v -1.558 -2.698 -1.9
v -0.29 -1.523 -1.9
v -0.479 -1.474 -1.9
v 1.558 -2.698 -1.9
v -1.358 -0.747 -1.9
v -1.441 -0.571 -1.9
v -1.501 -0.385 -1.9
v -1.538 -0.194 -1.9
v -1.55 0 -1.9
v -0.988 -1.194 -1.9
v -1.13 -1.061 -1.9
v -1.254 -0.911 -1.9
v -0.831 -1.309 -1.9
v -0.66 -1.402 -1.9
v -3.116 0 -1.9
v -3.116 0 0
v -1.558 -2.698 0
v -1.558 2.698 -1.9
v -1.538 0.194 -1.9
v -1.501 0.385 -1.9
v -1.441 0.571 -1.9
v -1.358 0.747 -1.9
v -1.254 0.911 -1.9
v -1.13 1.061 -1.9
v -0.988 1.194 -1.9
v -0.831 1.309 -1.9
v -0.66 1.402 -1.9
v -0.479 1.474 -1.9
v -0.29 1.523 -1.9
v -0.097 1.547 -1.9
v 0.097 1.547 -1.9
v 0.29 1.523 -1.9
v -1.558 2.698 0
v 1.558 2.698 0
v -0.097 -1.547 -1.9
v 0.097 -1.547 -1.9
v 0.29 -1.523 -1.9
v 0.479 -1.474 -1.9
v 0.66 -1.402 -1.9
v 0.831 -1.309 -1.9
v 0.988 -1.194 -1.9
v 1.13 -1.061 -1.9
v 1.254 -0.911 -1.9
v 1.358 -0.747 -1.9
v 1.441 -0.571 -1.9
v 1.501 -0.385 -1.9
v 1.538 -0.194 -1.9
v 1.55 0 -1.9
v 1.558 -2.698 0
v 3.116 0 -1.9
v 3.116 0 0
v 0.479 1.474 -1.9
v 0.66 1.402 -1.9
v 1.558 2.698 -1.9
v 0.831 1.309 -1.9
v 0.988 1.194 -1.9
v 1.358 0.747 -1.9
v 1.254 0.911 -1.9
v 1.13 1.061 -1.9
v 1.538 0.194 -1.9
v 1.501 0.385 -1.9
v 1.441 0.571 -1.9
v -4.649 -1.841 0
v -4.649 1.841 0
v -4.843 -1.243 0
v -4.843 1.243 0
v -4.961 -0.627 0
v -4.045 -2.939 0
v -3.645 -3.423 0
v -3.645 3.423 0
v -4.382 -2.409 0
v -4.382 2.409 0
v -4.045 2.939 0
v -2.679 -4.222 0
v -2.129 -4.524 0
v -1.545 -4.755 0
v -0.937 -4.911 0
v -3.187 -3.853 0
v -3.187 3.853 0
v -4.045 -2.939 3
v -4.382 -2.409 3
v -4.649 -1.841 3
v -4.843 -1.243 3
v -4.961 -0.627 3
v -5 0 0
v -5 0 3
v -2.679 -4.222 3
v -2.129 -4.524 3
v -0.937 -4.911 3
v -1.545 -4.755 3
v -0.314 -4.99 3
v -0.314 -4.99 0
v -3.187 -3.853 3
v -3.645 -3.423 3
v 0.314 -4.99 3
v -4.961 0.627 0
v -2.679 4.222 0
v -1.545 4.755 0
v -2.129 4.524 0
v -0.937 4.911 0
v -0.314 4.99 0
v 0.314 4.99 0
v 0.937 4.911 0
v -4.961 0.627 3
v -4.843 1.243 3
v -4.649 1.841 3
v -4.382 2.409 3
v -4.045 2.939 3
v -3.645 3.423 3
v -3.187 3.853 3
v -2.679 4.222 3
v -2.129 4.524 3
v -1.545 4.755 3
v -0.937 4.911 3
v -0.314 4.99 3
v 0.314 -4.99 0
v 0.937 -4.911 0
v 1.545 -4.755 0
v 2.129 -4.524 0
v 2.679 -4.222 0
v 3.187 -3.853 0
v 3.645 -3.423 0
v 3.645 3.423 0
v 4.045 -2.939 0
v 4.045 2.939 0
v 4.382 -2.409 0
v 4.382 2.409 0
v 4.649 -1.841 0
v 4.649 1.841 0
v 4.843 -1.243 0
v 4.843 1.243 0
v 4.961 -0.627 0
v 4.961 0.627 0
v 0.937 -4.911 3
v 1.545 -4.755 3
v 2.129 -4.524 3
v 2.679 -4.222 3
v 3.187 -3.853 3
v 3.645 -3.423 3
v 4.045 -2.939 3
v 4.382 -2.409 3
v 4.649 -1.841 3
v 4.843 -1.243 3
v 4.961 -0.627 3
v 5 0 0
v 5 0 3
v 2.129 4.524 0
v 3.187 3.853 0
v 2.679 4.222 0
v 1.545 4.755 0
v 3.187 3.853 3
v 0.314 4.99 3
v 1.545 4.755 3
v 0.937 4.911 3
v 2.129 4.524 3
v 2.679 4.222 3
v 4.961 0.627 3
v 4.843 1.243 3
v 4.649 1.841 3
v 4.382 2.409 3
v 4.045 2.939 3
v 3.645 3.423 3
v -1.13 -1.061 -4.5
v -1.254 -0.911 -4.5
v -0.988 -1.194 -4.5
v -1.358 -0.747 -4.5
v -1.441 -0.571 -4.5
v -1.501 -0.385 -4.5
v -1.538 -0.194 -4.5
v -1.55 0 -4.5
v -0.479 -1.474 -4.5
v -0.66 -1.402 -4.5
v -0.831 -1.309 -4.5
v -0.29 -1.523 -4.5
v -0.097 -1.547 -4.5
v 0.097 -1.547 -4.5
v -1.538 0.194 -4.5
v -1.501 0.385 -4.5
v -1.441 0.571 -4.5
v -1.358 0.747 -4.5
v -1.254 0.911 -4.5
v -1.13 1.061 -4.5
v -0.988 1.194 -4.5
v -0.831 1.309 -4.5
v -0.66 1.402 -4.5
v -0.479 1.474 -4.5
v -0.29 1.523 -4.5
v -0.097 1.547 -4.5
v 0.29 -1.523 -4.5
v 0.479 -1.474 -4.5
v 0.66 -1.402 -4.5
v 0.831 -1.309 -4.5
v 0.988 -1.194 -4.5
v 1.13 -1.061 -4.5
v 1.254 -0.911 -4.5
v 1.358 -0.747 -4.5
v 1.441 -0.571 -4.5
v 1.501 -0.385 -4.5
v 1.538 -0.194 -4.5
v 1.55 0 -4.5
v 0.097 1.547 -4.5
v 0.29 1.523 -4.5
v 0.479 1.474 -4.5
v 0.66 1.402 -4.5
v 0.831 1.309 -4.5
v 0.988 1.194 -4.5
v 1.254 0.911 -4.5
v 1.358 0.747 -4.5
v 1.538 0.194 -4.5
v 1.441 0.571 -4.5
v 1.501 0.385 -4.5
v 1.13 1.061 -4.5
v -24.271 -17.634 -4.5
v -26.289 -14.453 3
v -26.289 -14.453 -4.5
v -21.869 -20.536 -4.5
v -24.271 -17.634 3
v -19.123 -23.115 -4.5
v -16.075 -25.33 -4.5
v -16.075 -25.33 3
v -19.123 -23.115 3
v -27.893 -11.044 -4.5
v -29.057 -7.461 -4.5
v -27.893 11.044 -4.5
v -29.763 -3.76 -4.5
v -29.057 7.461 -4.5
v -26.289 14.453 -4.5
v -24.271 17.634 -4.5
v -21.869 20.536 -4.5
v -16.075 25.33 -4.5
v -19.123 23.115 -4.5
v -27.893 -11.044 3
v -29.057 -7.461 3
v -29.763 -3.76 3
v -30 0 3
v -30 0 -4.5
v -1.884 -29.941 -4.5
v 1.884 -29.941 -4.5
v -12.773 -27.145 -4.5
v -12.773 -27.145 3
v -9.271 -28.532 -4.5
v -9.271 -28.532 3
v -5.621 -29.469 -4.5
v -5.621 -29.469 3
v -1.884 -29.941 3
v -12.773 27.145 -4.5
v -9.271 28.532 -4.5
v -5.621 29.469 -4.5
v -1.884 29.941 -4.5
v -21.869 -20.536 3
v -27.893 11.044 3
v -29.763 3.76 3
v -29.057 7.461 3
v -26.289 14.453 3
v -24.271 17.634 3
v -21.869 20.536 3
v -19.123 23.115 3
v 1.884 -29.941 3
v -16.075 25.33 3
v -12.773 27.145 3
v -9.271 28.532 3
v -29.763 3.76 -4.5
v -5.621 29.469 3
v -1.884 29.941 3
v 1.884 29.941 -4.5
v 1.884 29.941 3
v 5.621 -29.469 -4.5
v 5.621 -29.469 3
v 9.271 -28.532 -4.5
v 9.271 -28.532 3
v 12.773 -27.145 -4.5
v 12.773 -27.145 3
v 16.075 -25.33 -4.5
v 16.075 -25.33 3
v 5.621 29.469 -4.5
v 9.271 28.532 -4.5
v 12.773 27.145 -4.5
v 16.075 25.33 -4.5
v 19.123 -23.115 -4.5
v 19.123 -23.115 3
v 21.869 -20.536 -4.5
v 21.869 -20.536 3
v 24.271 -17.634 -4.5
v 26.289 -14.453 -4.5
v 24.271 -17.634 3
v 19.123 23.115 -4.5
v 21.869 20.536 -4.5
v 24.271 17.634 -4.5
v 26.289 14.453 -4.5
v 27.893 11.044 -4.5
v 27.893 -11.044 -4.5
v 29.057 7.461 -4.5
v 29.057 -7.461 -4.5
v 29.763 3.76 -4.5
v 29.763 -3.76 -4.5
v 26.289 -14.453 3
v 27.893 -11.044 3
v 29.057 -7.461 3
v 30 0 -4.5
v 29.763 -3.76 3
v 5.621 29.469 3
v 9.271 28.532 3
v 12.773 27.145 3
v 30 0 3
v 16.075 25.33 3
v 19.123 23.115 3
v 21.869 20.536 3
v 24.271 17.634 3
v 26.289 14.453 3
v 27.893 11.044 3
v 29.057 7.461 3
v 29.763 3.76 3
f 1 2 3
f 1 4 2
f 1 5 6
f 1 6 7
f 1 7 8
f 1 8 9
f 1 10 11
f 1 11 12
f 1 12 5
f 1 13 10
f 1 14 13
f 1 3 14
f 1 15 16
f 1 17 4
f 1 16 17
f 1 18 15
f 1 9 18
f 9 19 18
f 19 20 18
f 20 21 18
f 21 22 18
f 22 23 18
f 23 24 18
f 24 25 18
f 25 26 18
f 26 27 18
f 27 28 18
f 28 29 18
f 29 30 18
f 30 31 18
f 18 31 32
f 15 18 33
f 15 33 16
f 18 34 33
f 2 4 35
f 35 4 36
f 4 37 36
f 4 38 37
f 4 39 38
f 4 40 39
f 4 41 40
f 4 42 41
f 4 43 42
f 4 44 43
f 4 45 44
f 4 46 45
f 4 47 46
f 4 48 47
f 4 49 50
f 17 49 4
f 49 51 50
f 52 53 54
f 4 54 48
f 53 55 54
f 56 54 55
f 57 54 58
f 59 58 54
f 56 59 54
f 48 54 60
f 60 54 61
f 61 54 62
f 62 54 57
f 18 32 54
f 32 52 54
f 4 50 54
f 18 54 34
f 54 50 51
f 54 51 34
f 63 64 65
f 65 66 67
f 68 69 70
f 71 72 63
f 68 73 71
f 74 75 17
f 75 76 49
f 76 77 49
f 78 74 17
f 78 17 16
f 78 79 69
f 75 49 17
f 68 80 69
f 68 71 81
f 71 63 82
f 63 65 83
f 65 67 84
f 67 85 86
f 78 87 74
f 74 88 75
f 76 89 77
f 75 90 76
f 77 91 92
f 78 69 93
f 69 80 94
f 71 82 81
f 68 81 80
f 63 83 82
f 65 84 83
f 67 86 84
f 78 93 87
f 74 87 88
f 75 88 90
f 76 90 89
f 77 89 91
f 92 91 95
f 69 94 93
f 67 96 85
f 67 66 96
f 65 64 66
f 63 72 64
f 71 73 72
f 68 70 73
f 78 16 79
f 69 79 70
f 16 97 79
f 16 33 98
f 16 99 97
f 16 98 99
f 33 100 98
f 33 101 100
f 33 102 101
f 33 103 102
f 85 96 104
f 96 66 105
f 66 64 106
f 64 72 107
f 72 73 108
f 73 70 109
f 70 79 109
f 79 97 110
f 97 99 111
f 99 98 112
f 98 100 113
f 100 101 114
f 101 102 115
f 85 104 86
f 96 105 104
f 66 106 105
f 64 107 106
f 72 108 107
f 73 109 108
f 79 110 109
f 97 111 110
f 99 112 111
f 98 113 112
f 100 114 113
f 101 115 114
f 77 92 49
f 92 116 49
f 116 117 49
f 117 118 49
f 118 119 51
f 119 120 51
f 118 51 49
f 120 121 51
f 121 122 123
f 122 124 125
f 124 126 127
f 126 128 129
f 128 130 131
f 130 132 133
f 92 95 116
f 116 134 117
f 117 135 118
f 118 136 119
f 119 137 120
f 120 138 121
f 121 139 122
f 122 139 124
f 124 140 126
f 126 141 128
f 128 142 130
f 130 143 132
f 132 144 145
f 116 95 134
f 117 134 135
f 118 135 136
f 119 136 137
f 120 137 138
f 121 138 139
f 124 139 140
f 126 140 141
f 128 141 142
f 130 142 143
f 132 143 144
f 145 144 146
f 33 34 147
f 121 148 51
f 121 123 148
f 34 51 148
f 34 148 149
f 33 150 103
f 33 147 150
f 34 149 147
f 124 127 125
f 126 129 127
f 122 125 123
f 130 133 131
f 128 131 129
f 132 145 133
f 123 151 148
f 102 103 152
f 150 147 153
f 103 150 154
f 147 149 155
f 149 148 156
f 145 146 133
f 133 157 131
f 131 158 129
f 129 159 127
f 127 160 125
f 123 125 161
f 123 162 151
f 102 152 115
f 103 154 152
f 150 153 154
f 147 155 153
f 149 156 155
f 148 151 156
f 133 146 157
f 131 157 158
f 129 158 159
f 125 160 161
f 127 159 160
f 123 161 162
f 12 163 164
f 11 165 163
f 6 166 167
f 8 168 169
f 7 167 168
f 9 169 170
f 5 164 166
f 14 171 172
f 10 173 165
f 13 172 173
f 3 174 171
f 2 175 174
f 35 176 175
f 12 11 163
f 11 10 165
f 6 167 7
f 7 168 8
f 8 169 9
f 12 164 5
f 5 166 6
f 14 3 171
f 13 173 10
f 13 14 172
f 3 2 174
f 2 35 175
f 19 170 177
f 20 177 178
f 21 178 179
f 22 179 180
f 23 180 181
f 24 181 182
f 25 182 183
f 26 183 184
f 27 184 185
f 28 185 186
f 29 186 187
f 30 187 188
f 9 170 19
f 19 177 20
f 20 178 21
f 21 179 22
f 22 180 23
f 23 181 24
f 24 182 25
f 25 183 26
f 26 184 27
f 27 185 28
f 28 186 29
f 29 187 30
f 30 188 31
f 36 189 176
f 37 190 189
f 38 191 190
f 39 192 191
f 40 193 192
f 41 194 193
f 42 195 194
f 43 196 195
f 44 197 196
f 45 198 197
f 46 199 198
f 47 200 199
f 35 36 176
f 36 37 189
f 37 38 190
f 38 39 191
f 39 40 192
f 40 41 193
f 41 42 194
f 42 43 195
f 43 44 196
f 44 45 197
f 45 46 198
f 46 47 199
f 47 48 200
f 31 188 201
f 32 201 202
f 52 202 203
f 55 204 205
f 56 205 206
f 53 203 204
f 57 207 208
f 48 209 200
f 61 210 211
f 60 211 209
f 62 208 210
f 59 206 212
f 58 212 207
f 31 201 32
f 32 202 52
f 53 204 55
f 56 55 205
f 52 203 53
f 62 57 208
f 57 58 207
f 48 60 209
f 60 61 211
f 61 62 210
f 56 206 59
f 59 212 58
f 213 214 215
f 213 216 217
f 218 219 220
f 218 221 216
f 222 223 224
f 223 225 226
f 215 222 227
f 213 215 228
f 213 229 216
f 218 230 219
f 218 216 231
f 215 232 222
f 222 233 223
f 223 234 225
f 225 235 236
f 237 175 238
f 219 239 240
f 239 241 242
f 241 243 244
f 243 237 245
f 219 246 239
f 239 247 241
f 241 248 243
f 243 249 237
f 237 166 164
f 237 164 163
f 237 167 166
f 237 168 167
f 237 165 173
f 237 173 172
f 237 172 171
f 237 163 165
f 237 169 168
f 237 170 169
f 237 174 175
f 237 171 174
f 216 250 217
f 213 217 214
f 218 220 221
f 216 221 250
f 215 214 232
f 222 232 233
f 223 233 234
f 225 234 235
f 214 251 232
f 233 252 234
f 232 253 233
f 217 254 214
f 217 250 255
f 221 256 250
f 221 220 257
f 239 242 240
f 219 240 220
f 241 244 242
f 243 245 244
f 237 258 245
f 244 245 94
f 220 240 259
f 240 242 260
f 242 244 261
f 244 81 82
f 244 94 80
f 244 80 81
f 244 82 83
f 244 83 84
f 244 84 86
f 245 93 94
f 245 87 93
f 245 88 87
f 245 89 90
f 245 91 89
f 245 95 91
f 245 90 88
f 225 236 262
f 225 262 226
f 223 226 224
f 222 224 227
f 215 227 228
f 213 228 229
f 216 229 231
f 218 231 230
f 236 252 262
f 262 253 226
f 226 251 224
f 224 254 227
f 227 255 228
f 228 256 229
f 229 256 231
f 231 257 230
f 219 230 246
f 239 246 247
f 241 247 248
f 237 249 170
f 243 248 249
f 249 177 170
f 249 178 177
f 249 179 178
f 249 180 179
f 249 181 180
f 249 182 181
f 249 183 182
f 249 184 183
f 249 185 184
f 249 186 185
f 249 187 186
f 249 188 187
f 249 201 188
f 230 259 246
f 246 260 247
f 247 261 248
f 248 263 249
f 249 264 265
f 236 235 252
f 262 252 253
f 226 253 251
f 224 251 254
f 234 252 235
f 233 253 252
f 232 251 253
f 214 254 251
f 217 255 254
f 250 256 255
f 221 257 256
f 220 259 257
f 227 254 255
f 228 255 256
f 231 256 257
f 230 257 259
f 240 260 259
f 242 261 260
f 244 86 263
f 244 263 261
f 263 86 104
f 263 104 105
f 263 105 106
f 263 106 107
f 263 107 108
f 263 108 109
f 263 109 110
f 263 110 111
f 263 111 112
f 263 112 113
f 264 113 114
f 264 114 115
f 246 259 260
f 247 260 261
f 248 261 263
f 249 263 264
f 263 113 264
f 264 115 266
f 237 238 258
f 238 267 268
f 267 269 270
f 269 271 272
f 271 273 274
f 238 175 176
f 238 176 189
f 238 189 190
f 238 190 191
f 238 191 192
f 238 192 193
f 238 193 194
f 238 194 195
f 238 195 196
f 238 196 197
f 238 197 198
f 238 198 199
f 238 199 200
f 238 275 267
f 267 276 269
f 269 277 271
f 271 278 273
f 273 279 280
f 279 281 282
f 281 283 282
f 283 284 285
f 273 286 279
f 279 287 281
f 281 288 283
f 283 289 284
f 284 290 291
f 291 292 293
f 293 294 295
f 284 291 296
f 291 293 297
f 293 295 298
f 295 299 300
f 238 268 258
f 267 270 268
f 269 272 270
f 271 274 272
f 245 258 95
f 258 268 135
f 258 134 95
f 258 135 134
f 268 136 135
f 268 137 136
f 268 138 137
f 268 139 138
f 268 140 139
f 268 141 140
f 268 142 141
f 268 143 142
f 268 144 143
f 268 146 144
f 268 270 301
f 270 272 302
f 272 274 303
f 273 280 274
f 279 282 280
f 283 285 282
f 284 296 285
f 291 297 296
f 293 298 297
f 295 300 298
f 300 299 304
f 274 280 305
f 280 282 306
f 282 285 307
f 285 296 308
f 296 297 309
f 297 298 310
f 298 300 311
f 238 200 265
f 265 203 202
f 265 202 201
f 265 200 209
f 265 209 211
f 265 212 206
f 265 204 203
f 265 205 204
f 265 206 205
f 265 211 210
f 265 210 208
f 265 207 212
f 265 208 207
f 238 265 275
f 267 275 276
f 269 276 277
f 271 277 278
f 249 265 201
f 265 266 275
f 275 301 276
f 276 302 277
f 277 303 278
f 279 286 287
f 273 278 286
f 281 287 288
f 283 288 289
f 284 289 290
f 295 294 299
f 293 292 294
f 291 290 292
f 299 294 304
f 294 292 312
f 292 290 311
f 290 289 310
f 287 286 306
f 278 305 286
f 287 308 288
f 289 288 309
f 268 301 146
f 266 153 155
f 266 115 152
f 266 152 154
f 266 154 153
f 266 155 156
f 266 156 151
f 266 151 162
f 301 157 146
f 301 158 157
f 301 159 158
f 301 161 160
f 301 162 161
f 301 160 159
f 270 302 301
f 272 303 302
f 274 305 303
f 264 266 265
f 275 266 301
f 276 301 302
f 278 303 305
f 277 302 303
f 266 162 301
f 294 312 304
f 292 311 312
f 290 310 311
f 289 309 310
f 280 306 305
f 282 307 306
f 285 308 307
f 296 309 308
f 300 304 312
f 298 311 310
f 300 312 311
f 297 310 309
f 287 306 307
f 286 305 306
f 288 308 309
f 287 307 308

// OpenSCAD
$fn = 50;

difference() {
	union() {
		translate(v = [0, 0, -4.5]) {
			cylinder(h = 7.5, r = 30.0);
		}
	}
	union() {
		translate(v = [0, 0, 0]) {
			rotate(a = [0, 0, 0]) {
				difference() {
					union() {
						translate(v = [0, 0, -1.9]) {
							linear_extrude(height = 1.9) {
								polygon(points = [[3.1158, 0.0], [1.5579000000000005, 2.698361953111554], [-1.5578999999999994, 2.6983619531115544], [-3.1158, 3.815754496783323e-16], [-1.5579000000000014, -2.6983619531115535], [1.557899999999998, -2.6983619531115552]]);
							}
						}
					}
					union();
				}
			}
		}
		#cylinder(h = 3, r = 5.0);
		#translate(v = [0, 0, -100.0]) {
			cylinder(h = 200, r = 1.55);
		}
	}
}
